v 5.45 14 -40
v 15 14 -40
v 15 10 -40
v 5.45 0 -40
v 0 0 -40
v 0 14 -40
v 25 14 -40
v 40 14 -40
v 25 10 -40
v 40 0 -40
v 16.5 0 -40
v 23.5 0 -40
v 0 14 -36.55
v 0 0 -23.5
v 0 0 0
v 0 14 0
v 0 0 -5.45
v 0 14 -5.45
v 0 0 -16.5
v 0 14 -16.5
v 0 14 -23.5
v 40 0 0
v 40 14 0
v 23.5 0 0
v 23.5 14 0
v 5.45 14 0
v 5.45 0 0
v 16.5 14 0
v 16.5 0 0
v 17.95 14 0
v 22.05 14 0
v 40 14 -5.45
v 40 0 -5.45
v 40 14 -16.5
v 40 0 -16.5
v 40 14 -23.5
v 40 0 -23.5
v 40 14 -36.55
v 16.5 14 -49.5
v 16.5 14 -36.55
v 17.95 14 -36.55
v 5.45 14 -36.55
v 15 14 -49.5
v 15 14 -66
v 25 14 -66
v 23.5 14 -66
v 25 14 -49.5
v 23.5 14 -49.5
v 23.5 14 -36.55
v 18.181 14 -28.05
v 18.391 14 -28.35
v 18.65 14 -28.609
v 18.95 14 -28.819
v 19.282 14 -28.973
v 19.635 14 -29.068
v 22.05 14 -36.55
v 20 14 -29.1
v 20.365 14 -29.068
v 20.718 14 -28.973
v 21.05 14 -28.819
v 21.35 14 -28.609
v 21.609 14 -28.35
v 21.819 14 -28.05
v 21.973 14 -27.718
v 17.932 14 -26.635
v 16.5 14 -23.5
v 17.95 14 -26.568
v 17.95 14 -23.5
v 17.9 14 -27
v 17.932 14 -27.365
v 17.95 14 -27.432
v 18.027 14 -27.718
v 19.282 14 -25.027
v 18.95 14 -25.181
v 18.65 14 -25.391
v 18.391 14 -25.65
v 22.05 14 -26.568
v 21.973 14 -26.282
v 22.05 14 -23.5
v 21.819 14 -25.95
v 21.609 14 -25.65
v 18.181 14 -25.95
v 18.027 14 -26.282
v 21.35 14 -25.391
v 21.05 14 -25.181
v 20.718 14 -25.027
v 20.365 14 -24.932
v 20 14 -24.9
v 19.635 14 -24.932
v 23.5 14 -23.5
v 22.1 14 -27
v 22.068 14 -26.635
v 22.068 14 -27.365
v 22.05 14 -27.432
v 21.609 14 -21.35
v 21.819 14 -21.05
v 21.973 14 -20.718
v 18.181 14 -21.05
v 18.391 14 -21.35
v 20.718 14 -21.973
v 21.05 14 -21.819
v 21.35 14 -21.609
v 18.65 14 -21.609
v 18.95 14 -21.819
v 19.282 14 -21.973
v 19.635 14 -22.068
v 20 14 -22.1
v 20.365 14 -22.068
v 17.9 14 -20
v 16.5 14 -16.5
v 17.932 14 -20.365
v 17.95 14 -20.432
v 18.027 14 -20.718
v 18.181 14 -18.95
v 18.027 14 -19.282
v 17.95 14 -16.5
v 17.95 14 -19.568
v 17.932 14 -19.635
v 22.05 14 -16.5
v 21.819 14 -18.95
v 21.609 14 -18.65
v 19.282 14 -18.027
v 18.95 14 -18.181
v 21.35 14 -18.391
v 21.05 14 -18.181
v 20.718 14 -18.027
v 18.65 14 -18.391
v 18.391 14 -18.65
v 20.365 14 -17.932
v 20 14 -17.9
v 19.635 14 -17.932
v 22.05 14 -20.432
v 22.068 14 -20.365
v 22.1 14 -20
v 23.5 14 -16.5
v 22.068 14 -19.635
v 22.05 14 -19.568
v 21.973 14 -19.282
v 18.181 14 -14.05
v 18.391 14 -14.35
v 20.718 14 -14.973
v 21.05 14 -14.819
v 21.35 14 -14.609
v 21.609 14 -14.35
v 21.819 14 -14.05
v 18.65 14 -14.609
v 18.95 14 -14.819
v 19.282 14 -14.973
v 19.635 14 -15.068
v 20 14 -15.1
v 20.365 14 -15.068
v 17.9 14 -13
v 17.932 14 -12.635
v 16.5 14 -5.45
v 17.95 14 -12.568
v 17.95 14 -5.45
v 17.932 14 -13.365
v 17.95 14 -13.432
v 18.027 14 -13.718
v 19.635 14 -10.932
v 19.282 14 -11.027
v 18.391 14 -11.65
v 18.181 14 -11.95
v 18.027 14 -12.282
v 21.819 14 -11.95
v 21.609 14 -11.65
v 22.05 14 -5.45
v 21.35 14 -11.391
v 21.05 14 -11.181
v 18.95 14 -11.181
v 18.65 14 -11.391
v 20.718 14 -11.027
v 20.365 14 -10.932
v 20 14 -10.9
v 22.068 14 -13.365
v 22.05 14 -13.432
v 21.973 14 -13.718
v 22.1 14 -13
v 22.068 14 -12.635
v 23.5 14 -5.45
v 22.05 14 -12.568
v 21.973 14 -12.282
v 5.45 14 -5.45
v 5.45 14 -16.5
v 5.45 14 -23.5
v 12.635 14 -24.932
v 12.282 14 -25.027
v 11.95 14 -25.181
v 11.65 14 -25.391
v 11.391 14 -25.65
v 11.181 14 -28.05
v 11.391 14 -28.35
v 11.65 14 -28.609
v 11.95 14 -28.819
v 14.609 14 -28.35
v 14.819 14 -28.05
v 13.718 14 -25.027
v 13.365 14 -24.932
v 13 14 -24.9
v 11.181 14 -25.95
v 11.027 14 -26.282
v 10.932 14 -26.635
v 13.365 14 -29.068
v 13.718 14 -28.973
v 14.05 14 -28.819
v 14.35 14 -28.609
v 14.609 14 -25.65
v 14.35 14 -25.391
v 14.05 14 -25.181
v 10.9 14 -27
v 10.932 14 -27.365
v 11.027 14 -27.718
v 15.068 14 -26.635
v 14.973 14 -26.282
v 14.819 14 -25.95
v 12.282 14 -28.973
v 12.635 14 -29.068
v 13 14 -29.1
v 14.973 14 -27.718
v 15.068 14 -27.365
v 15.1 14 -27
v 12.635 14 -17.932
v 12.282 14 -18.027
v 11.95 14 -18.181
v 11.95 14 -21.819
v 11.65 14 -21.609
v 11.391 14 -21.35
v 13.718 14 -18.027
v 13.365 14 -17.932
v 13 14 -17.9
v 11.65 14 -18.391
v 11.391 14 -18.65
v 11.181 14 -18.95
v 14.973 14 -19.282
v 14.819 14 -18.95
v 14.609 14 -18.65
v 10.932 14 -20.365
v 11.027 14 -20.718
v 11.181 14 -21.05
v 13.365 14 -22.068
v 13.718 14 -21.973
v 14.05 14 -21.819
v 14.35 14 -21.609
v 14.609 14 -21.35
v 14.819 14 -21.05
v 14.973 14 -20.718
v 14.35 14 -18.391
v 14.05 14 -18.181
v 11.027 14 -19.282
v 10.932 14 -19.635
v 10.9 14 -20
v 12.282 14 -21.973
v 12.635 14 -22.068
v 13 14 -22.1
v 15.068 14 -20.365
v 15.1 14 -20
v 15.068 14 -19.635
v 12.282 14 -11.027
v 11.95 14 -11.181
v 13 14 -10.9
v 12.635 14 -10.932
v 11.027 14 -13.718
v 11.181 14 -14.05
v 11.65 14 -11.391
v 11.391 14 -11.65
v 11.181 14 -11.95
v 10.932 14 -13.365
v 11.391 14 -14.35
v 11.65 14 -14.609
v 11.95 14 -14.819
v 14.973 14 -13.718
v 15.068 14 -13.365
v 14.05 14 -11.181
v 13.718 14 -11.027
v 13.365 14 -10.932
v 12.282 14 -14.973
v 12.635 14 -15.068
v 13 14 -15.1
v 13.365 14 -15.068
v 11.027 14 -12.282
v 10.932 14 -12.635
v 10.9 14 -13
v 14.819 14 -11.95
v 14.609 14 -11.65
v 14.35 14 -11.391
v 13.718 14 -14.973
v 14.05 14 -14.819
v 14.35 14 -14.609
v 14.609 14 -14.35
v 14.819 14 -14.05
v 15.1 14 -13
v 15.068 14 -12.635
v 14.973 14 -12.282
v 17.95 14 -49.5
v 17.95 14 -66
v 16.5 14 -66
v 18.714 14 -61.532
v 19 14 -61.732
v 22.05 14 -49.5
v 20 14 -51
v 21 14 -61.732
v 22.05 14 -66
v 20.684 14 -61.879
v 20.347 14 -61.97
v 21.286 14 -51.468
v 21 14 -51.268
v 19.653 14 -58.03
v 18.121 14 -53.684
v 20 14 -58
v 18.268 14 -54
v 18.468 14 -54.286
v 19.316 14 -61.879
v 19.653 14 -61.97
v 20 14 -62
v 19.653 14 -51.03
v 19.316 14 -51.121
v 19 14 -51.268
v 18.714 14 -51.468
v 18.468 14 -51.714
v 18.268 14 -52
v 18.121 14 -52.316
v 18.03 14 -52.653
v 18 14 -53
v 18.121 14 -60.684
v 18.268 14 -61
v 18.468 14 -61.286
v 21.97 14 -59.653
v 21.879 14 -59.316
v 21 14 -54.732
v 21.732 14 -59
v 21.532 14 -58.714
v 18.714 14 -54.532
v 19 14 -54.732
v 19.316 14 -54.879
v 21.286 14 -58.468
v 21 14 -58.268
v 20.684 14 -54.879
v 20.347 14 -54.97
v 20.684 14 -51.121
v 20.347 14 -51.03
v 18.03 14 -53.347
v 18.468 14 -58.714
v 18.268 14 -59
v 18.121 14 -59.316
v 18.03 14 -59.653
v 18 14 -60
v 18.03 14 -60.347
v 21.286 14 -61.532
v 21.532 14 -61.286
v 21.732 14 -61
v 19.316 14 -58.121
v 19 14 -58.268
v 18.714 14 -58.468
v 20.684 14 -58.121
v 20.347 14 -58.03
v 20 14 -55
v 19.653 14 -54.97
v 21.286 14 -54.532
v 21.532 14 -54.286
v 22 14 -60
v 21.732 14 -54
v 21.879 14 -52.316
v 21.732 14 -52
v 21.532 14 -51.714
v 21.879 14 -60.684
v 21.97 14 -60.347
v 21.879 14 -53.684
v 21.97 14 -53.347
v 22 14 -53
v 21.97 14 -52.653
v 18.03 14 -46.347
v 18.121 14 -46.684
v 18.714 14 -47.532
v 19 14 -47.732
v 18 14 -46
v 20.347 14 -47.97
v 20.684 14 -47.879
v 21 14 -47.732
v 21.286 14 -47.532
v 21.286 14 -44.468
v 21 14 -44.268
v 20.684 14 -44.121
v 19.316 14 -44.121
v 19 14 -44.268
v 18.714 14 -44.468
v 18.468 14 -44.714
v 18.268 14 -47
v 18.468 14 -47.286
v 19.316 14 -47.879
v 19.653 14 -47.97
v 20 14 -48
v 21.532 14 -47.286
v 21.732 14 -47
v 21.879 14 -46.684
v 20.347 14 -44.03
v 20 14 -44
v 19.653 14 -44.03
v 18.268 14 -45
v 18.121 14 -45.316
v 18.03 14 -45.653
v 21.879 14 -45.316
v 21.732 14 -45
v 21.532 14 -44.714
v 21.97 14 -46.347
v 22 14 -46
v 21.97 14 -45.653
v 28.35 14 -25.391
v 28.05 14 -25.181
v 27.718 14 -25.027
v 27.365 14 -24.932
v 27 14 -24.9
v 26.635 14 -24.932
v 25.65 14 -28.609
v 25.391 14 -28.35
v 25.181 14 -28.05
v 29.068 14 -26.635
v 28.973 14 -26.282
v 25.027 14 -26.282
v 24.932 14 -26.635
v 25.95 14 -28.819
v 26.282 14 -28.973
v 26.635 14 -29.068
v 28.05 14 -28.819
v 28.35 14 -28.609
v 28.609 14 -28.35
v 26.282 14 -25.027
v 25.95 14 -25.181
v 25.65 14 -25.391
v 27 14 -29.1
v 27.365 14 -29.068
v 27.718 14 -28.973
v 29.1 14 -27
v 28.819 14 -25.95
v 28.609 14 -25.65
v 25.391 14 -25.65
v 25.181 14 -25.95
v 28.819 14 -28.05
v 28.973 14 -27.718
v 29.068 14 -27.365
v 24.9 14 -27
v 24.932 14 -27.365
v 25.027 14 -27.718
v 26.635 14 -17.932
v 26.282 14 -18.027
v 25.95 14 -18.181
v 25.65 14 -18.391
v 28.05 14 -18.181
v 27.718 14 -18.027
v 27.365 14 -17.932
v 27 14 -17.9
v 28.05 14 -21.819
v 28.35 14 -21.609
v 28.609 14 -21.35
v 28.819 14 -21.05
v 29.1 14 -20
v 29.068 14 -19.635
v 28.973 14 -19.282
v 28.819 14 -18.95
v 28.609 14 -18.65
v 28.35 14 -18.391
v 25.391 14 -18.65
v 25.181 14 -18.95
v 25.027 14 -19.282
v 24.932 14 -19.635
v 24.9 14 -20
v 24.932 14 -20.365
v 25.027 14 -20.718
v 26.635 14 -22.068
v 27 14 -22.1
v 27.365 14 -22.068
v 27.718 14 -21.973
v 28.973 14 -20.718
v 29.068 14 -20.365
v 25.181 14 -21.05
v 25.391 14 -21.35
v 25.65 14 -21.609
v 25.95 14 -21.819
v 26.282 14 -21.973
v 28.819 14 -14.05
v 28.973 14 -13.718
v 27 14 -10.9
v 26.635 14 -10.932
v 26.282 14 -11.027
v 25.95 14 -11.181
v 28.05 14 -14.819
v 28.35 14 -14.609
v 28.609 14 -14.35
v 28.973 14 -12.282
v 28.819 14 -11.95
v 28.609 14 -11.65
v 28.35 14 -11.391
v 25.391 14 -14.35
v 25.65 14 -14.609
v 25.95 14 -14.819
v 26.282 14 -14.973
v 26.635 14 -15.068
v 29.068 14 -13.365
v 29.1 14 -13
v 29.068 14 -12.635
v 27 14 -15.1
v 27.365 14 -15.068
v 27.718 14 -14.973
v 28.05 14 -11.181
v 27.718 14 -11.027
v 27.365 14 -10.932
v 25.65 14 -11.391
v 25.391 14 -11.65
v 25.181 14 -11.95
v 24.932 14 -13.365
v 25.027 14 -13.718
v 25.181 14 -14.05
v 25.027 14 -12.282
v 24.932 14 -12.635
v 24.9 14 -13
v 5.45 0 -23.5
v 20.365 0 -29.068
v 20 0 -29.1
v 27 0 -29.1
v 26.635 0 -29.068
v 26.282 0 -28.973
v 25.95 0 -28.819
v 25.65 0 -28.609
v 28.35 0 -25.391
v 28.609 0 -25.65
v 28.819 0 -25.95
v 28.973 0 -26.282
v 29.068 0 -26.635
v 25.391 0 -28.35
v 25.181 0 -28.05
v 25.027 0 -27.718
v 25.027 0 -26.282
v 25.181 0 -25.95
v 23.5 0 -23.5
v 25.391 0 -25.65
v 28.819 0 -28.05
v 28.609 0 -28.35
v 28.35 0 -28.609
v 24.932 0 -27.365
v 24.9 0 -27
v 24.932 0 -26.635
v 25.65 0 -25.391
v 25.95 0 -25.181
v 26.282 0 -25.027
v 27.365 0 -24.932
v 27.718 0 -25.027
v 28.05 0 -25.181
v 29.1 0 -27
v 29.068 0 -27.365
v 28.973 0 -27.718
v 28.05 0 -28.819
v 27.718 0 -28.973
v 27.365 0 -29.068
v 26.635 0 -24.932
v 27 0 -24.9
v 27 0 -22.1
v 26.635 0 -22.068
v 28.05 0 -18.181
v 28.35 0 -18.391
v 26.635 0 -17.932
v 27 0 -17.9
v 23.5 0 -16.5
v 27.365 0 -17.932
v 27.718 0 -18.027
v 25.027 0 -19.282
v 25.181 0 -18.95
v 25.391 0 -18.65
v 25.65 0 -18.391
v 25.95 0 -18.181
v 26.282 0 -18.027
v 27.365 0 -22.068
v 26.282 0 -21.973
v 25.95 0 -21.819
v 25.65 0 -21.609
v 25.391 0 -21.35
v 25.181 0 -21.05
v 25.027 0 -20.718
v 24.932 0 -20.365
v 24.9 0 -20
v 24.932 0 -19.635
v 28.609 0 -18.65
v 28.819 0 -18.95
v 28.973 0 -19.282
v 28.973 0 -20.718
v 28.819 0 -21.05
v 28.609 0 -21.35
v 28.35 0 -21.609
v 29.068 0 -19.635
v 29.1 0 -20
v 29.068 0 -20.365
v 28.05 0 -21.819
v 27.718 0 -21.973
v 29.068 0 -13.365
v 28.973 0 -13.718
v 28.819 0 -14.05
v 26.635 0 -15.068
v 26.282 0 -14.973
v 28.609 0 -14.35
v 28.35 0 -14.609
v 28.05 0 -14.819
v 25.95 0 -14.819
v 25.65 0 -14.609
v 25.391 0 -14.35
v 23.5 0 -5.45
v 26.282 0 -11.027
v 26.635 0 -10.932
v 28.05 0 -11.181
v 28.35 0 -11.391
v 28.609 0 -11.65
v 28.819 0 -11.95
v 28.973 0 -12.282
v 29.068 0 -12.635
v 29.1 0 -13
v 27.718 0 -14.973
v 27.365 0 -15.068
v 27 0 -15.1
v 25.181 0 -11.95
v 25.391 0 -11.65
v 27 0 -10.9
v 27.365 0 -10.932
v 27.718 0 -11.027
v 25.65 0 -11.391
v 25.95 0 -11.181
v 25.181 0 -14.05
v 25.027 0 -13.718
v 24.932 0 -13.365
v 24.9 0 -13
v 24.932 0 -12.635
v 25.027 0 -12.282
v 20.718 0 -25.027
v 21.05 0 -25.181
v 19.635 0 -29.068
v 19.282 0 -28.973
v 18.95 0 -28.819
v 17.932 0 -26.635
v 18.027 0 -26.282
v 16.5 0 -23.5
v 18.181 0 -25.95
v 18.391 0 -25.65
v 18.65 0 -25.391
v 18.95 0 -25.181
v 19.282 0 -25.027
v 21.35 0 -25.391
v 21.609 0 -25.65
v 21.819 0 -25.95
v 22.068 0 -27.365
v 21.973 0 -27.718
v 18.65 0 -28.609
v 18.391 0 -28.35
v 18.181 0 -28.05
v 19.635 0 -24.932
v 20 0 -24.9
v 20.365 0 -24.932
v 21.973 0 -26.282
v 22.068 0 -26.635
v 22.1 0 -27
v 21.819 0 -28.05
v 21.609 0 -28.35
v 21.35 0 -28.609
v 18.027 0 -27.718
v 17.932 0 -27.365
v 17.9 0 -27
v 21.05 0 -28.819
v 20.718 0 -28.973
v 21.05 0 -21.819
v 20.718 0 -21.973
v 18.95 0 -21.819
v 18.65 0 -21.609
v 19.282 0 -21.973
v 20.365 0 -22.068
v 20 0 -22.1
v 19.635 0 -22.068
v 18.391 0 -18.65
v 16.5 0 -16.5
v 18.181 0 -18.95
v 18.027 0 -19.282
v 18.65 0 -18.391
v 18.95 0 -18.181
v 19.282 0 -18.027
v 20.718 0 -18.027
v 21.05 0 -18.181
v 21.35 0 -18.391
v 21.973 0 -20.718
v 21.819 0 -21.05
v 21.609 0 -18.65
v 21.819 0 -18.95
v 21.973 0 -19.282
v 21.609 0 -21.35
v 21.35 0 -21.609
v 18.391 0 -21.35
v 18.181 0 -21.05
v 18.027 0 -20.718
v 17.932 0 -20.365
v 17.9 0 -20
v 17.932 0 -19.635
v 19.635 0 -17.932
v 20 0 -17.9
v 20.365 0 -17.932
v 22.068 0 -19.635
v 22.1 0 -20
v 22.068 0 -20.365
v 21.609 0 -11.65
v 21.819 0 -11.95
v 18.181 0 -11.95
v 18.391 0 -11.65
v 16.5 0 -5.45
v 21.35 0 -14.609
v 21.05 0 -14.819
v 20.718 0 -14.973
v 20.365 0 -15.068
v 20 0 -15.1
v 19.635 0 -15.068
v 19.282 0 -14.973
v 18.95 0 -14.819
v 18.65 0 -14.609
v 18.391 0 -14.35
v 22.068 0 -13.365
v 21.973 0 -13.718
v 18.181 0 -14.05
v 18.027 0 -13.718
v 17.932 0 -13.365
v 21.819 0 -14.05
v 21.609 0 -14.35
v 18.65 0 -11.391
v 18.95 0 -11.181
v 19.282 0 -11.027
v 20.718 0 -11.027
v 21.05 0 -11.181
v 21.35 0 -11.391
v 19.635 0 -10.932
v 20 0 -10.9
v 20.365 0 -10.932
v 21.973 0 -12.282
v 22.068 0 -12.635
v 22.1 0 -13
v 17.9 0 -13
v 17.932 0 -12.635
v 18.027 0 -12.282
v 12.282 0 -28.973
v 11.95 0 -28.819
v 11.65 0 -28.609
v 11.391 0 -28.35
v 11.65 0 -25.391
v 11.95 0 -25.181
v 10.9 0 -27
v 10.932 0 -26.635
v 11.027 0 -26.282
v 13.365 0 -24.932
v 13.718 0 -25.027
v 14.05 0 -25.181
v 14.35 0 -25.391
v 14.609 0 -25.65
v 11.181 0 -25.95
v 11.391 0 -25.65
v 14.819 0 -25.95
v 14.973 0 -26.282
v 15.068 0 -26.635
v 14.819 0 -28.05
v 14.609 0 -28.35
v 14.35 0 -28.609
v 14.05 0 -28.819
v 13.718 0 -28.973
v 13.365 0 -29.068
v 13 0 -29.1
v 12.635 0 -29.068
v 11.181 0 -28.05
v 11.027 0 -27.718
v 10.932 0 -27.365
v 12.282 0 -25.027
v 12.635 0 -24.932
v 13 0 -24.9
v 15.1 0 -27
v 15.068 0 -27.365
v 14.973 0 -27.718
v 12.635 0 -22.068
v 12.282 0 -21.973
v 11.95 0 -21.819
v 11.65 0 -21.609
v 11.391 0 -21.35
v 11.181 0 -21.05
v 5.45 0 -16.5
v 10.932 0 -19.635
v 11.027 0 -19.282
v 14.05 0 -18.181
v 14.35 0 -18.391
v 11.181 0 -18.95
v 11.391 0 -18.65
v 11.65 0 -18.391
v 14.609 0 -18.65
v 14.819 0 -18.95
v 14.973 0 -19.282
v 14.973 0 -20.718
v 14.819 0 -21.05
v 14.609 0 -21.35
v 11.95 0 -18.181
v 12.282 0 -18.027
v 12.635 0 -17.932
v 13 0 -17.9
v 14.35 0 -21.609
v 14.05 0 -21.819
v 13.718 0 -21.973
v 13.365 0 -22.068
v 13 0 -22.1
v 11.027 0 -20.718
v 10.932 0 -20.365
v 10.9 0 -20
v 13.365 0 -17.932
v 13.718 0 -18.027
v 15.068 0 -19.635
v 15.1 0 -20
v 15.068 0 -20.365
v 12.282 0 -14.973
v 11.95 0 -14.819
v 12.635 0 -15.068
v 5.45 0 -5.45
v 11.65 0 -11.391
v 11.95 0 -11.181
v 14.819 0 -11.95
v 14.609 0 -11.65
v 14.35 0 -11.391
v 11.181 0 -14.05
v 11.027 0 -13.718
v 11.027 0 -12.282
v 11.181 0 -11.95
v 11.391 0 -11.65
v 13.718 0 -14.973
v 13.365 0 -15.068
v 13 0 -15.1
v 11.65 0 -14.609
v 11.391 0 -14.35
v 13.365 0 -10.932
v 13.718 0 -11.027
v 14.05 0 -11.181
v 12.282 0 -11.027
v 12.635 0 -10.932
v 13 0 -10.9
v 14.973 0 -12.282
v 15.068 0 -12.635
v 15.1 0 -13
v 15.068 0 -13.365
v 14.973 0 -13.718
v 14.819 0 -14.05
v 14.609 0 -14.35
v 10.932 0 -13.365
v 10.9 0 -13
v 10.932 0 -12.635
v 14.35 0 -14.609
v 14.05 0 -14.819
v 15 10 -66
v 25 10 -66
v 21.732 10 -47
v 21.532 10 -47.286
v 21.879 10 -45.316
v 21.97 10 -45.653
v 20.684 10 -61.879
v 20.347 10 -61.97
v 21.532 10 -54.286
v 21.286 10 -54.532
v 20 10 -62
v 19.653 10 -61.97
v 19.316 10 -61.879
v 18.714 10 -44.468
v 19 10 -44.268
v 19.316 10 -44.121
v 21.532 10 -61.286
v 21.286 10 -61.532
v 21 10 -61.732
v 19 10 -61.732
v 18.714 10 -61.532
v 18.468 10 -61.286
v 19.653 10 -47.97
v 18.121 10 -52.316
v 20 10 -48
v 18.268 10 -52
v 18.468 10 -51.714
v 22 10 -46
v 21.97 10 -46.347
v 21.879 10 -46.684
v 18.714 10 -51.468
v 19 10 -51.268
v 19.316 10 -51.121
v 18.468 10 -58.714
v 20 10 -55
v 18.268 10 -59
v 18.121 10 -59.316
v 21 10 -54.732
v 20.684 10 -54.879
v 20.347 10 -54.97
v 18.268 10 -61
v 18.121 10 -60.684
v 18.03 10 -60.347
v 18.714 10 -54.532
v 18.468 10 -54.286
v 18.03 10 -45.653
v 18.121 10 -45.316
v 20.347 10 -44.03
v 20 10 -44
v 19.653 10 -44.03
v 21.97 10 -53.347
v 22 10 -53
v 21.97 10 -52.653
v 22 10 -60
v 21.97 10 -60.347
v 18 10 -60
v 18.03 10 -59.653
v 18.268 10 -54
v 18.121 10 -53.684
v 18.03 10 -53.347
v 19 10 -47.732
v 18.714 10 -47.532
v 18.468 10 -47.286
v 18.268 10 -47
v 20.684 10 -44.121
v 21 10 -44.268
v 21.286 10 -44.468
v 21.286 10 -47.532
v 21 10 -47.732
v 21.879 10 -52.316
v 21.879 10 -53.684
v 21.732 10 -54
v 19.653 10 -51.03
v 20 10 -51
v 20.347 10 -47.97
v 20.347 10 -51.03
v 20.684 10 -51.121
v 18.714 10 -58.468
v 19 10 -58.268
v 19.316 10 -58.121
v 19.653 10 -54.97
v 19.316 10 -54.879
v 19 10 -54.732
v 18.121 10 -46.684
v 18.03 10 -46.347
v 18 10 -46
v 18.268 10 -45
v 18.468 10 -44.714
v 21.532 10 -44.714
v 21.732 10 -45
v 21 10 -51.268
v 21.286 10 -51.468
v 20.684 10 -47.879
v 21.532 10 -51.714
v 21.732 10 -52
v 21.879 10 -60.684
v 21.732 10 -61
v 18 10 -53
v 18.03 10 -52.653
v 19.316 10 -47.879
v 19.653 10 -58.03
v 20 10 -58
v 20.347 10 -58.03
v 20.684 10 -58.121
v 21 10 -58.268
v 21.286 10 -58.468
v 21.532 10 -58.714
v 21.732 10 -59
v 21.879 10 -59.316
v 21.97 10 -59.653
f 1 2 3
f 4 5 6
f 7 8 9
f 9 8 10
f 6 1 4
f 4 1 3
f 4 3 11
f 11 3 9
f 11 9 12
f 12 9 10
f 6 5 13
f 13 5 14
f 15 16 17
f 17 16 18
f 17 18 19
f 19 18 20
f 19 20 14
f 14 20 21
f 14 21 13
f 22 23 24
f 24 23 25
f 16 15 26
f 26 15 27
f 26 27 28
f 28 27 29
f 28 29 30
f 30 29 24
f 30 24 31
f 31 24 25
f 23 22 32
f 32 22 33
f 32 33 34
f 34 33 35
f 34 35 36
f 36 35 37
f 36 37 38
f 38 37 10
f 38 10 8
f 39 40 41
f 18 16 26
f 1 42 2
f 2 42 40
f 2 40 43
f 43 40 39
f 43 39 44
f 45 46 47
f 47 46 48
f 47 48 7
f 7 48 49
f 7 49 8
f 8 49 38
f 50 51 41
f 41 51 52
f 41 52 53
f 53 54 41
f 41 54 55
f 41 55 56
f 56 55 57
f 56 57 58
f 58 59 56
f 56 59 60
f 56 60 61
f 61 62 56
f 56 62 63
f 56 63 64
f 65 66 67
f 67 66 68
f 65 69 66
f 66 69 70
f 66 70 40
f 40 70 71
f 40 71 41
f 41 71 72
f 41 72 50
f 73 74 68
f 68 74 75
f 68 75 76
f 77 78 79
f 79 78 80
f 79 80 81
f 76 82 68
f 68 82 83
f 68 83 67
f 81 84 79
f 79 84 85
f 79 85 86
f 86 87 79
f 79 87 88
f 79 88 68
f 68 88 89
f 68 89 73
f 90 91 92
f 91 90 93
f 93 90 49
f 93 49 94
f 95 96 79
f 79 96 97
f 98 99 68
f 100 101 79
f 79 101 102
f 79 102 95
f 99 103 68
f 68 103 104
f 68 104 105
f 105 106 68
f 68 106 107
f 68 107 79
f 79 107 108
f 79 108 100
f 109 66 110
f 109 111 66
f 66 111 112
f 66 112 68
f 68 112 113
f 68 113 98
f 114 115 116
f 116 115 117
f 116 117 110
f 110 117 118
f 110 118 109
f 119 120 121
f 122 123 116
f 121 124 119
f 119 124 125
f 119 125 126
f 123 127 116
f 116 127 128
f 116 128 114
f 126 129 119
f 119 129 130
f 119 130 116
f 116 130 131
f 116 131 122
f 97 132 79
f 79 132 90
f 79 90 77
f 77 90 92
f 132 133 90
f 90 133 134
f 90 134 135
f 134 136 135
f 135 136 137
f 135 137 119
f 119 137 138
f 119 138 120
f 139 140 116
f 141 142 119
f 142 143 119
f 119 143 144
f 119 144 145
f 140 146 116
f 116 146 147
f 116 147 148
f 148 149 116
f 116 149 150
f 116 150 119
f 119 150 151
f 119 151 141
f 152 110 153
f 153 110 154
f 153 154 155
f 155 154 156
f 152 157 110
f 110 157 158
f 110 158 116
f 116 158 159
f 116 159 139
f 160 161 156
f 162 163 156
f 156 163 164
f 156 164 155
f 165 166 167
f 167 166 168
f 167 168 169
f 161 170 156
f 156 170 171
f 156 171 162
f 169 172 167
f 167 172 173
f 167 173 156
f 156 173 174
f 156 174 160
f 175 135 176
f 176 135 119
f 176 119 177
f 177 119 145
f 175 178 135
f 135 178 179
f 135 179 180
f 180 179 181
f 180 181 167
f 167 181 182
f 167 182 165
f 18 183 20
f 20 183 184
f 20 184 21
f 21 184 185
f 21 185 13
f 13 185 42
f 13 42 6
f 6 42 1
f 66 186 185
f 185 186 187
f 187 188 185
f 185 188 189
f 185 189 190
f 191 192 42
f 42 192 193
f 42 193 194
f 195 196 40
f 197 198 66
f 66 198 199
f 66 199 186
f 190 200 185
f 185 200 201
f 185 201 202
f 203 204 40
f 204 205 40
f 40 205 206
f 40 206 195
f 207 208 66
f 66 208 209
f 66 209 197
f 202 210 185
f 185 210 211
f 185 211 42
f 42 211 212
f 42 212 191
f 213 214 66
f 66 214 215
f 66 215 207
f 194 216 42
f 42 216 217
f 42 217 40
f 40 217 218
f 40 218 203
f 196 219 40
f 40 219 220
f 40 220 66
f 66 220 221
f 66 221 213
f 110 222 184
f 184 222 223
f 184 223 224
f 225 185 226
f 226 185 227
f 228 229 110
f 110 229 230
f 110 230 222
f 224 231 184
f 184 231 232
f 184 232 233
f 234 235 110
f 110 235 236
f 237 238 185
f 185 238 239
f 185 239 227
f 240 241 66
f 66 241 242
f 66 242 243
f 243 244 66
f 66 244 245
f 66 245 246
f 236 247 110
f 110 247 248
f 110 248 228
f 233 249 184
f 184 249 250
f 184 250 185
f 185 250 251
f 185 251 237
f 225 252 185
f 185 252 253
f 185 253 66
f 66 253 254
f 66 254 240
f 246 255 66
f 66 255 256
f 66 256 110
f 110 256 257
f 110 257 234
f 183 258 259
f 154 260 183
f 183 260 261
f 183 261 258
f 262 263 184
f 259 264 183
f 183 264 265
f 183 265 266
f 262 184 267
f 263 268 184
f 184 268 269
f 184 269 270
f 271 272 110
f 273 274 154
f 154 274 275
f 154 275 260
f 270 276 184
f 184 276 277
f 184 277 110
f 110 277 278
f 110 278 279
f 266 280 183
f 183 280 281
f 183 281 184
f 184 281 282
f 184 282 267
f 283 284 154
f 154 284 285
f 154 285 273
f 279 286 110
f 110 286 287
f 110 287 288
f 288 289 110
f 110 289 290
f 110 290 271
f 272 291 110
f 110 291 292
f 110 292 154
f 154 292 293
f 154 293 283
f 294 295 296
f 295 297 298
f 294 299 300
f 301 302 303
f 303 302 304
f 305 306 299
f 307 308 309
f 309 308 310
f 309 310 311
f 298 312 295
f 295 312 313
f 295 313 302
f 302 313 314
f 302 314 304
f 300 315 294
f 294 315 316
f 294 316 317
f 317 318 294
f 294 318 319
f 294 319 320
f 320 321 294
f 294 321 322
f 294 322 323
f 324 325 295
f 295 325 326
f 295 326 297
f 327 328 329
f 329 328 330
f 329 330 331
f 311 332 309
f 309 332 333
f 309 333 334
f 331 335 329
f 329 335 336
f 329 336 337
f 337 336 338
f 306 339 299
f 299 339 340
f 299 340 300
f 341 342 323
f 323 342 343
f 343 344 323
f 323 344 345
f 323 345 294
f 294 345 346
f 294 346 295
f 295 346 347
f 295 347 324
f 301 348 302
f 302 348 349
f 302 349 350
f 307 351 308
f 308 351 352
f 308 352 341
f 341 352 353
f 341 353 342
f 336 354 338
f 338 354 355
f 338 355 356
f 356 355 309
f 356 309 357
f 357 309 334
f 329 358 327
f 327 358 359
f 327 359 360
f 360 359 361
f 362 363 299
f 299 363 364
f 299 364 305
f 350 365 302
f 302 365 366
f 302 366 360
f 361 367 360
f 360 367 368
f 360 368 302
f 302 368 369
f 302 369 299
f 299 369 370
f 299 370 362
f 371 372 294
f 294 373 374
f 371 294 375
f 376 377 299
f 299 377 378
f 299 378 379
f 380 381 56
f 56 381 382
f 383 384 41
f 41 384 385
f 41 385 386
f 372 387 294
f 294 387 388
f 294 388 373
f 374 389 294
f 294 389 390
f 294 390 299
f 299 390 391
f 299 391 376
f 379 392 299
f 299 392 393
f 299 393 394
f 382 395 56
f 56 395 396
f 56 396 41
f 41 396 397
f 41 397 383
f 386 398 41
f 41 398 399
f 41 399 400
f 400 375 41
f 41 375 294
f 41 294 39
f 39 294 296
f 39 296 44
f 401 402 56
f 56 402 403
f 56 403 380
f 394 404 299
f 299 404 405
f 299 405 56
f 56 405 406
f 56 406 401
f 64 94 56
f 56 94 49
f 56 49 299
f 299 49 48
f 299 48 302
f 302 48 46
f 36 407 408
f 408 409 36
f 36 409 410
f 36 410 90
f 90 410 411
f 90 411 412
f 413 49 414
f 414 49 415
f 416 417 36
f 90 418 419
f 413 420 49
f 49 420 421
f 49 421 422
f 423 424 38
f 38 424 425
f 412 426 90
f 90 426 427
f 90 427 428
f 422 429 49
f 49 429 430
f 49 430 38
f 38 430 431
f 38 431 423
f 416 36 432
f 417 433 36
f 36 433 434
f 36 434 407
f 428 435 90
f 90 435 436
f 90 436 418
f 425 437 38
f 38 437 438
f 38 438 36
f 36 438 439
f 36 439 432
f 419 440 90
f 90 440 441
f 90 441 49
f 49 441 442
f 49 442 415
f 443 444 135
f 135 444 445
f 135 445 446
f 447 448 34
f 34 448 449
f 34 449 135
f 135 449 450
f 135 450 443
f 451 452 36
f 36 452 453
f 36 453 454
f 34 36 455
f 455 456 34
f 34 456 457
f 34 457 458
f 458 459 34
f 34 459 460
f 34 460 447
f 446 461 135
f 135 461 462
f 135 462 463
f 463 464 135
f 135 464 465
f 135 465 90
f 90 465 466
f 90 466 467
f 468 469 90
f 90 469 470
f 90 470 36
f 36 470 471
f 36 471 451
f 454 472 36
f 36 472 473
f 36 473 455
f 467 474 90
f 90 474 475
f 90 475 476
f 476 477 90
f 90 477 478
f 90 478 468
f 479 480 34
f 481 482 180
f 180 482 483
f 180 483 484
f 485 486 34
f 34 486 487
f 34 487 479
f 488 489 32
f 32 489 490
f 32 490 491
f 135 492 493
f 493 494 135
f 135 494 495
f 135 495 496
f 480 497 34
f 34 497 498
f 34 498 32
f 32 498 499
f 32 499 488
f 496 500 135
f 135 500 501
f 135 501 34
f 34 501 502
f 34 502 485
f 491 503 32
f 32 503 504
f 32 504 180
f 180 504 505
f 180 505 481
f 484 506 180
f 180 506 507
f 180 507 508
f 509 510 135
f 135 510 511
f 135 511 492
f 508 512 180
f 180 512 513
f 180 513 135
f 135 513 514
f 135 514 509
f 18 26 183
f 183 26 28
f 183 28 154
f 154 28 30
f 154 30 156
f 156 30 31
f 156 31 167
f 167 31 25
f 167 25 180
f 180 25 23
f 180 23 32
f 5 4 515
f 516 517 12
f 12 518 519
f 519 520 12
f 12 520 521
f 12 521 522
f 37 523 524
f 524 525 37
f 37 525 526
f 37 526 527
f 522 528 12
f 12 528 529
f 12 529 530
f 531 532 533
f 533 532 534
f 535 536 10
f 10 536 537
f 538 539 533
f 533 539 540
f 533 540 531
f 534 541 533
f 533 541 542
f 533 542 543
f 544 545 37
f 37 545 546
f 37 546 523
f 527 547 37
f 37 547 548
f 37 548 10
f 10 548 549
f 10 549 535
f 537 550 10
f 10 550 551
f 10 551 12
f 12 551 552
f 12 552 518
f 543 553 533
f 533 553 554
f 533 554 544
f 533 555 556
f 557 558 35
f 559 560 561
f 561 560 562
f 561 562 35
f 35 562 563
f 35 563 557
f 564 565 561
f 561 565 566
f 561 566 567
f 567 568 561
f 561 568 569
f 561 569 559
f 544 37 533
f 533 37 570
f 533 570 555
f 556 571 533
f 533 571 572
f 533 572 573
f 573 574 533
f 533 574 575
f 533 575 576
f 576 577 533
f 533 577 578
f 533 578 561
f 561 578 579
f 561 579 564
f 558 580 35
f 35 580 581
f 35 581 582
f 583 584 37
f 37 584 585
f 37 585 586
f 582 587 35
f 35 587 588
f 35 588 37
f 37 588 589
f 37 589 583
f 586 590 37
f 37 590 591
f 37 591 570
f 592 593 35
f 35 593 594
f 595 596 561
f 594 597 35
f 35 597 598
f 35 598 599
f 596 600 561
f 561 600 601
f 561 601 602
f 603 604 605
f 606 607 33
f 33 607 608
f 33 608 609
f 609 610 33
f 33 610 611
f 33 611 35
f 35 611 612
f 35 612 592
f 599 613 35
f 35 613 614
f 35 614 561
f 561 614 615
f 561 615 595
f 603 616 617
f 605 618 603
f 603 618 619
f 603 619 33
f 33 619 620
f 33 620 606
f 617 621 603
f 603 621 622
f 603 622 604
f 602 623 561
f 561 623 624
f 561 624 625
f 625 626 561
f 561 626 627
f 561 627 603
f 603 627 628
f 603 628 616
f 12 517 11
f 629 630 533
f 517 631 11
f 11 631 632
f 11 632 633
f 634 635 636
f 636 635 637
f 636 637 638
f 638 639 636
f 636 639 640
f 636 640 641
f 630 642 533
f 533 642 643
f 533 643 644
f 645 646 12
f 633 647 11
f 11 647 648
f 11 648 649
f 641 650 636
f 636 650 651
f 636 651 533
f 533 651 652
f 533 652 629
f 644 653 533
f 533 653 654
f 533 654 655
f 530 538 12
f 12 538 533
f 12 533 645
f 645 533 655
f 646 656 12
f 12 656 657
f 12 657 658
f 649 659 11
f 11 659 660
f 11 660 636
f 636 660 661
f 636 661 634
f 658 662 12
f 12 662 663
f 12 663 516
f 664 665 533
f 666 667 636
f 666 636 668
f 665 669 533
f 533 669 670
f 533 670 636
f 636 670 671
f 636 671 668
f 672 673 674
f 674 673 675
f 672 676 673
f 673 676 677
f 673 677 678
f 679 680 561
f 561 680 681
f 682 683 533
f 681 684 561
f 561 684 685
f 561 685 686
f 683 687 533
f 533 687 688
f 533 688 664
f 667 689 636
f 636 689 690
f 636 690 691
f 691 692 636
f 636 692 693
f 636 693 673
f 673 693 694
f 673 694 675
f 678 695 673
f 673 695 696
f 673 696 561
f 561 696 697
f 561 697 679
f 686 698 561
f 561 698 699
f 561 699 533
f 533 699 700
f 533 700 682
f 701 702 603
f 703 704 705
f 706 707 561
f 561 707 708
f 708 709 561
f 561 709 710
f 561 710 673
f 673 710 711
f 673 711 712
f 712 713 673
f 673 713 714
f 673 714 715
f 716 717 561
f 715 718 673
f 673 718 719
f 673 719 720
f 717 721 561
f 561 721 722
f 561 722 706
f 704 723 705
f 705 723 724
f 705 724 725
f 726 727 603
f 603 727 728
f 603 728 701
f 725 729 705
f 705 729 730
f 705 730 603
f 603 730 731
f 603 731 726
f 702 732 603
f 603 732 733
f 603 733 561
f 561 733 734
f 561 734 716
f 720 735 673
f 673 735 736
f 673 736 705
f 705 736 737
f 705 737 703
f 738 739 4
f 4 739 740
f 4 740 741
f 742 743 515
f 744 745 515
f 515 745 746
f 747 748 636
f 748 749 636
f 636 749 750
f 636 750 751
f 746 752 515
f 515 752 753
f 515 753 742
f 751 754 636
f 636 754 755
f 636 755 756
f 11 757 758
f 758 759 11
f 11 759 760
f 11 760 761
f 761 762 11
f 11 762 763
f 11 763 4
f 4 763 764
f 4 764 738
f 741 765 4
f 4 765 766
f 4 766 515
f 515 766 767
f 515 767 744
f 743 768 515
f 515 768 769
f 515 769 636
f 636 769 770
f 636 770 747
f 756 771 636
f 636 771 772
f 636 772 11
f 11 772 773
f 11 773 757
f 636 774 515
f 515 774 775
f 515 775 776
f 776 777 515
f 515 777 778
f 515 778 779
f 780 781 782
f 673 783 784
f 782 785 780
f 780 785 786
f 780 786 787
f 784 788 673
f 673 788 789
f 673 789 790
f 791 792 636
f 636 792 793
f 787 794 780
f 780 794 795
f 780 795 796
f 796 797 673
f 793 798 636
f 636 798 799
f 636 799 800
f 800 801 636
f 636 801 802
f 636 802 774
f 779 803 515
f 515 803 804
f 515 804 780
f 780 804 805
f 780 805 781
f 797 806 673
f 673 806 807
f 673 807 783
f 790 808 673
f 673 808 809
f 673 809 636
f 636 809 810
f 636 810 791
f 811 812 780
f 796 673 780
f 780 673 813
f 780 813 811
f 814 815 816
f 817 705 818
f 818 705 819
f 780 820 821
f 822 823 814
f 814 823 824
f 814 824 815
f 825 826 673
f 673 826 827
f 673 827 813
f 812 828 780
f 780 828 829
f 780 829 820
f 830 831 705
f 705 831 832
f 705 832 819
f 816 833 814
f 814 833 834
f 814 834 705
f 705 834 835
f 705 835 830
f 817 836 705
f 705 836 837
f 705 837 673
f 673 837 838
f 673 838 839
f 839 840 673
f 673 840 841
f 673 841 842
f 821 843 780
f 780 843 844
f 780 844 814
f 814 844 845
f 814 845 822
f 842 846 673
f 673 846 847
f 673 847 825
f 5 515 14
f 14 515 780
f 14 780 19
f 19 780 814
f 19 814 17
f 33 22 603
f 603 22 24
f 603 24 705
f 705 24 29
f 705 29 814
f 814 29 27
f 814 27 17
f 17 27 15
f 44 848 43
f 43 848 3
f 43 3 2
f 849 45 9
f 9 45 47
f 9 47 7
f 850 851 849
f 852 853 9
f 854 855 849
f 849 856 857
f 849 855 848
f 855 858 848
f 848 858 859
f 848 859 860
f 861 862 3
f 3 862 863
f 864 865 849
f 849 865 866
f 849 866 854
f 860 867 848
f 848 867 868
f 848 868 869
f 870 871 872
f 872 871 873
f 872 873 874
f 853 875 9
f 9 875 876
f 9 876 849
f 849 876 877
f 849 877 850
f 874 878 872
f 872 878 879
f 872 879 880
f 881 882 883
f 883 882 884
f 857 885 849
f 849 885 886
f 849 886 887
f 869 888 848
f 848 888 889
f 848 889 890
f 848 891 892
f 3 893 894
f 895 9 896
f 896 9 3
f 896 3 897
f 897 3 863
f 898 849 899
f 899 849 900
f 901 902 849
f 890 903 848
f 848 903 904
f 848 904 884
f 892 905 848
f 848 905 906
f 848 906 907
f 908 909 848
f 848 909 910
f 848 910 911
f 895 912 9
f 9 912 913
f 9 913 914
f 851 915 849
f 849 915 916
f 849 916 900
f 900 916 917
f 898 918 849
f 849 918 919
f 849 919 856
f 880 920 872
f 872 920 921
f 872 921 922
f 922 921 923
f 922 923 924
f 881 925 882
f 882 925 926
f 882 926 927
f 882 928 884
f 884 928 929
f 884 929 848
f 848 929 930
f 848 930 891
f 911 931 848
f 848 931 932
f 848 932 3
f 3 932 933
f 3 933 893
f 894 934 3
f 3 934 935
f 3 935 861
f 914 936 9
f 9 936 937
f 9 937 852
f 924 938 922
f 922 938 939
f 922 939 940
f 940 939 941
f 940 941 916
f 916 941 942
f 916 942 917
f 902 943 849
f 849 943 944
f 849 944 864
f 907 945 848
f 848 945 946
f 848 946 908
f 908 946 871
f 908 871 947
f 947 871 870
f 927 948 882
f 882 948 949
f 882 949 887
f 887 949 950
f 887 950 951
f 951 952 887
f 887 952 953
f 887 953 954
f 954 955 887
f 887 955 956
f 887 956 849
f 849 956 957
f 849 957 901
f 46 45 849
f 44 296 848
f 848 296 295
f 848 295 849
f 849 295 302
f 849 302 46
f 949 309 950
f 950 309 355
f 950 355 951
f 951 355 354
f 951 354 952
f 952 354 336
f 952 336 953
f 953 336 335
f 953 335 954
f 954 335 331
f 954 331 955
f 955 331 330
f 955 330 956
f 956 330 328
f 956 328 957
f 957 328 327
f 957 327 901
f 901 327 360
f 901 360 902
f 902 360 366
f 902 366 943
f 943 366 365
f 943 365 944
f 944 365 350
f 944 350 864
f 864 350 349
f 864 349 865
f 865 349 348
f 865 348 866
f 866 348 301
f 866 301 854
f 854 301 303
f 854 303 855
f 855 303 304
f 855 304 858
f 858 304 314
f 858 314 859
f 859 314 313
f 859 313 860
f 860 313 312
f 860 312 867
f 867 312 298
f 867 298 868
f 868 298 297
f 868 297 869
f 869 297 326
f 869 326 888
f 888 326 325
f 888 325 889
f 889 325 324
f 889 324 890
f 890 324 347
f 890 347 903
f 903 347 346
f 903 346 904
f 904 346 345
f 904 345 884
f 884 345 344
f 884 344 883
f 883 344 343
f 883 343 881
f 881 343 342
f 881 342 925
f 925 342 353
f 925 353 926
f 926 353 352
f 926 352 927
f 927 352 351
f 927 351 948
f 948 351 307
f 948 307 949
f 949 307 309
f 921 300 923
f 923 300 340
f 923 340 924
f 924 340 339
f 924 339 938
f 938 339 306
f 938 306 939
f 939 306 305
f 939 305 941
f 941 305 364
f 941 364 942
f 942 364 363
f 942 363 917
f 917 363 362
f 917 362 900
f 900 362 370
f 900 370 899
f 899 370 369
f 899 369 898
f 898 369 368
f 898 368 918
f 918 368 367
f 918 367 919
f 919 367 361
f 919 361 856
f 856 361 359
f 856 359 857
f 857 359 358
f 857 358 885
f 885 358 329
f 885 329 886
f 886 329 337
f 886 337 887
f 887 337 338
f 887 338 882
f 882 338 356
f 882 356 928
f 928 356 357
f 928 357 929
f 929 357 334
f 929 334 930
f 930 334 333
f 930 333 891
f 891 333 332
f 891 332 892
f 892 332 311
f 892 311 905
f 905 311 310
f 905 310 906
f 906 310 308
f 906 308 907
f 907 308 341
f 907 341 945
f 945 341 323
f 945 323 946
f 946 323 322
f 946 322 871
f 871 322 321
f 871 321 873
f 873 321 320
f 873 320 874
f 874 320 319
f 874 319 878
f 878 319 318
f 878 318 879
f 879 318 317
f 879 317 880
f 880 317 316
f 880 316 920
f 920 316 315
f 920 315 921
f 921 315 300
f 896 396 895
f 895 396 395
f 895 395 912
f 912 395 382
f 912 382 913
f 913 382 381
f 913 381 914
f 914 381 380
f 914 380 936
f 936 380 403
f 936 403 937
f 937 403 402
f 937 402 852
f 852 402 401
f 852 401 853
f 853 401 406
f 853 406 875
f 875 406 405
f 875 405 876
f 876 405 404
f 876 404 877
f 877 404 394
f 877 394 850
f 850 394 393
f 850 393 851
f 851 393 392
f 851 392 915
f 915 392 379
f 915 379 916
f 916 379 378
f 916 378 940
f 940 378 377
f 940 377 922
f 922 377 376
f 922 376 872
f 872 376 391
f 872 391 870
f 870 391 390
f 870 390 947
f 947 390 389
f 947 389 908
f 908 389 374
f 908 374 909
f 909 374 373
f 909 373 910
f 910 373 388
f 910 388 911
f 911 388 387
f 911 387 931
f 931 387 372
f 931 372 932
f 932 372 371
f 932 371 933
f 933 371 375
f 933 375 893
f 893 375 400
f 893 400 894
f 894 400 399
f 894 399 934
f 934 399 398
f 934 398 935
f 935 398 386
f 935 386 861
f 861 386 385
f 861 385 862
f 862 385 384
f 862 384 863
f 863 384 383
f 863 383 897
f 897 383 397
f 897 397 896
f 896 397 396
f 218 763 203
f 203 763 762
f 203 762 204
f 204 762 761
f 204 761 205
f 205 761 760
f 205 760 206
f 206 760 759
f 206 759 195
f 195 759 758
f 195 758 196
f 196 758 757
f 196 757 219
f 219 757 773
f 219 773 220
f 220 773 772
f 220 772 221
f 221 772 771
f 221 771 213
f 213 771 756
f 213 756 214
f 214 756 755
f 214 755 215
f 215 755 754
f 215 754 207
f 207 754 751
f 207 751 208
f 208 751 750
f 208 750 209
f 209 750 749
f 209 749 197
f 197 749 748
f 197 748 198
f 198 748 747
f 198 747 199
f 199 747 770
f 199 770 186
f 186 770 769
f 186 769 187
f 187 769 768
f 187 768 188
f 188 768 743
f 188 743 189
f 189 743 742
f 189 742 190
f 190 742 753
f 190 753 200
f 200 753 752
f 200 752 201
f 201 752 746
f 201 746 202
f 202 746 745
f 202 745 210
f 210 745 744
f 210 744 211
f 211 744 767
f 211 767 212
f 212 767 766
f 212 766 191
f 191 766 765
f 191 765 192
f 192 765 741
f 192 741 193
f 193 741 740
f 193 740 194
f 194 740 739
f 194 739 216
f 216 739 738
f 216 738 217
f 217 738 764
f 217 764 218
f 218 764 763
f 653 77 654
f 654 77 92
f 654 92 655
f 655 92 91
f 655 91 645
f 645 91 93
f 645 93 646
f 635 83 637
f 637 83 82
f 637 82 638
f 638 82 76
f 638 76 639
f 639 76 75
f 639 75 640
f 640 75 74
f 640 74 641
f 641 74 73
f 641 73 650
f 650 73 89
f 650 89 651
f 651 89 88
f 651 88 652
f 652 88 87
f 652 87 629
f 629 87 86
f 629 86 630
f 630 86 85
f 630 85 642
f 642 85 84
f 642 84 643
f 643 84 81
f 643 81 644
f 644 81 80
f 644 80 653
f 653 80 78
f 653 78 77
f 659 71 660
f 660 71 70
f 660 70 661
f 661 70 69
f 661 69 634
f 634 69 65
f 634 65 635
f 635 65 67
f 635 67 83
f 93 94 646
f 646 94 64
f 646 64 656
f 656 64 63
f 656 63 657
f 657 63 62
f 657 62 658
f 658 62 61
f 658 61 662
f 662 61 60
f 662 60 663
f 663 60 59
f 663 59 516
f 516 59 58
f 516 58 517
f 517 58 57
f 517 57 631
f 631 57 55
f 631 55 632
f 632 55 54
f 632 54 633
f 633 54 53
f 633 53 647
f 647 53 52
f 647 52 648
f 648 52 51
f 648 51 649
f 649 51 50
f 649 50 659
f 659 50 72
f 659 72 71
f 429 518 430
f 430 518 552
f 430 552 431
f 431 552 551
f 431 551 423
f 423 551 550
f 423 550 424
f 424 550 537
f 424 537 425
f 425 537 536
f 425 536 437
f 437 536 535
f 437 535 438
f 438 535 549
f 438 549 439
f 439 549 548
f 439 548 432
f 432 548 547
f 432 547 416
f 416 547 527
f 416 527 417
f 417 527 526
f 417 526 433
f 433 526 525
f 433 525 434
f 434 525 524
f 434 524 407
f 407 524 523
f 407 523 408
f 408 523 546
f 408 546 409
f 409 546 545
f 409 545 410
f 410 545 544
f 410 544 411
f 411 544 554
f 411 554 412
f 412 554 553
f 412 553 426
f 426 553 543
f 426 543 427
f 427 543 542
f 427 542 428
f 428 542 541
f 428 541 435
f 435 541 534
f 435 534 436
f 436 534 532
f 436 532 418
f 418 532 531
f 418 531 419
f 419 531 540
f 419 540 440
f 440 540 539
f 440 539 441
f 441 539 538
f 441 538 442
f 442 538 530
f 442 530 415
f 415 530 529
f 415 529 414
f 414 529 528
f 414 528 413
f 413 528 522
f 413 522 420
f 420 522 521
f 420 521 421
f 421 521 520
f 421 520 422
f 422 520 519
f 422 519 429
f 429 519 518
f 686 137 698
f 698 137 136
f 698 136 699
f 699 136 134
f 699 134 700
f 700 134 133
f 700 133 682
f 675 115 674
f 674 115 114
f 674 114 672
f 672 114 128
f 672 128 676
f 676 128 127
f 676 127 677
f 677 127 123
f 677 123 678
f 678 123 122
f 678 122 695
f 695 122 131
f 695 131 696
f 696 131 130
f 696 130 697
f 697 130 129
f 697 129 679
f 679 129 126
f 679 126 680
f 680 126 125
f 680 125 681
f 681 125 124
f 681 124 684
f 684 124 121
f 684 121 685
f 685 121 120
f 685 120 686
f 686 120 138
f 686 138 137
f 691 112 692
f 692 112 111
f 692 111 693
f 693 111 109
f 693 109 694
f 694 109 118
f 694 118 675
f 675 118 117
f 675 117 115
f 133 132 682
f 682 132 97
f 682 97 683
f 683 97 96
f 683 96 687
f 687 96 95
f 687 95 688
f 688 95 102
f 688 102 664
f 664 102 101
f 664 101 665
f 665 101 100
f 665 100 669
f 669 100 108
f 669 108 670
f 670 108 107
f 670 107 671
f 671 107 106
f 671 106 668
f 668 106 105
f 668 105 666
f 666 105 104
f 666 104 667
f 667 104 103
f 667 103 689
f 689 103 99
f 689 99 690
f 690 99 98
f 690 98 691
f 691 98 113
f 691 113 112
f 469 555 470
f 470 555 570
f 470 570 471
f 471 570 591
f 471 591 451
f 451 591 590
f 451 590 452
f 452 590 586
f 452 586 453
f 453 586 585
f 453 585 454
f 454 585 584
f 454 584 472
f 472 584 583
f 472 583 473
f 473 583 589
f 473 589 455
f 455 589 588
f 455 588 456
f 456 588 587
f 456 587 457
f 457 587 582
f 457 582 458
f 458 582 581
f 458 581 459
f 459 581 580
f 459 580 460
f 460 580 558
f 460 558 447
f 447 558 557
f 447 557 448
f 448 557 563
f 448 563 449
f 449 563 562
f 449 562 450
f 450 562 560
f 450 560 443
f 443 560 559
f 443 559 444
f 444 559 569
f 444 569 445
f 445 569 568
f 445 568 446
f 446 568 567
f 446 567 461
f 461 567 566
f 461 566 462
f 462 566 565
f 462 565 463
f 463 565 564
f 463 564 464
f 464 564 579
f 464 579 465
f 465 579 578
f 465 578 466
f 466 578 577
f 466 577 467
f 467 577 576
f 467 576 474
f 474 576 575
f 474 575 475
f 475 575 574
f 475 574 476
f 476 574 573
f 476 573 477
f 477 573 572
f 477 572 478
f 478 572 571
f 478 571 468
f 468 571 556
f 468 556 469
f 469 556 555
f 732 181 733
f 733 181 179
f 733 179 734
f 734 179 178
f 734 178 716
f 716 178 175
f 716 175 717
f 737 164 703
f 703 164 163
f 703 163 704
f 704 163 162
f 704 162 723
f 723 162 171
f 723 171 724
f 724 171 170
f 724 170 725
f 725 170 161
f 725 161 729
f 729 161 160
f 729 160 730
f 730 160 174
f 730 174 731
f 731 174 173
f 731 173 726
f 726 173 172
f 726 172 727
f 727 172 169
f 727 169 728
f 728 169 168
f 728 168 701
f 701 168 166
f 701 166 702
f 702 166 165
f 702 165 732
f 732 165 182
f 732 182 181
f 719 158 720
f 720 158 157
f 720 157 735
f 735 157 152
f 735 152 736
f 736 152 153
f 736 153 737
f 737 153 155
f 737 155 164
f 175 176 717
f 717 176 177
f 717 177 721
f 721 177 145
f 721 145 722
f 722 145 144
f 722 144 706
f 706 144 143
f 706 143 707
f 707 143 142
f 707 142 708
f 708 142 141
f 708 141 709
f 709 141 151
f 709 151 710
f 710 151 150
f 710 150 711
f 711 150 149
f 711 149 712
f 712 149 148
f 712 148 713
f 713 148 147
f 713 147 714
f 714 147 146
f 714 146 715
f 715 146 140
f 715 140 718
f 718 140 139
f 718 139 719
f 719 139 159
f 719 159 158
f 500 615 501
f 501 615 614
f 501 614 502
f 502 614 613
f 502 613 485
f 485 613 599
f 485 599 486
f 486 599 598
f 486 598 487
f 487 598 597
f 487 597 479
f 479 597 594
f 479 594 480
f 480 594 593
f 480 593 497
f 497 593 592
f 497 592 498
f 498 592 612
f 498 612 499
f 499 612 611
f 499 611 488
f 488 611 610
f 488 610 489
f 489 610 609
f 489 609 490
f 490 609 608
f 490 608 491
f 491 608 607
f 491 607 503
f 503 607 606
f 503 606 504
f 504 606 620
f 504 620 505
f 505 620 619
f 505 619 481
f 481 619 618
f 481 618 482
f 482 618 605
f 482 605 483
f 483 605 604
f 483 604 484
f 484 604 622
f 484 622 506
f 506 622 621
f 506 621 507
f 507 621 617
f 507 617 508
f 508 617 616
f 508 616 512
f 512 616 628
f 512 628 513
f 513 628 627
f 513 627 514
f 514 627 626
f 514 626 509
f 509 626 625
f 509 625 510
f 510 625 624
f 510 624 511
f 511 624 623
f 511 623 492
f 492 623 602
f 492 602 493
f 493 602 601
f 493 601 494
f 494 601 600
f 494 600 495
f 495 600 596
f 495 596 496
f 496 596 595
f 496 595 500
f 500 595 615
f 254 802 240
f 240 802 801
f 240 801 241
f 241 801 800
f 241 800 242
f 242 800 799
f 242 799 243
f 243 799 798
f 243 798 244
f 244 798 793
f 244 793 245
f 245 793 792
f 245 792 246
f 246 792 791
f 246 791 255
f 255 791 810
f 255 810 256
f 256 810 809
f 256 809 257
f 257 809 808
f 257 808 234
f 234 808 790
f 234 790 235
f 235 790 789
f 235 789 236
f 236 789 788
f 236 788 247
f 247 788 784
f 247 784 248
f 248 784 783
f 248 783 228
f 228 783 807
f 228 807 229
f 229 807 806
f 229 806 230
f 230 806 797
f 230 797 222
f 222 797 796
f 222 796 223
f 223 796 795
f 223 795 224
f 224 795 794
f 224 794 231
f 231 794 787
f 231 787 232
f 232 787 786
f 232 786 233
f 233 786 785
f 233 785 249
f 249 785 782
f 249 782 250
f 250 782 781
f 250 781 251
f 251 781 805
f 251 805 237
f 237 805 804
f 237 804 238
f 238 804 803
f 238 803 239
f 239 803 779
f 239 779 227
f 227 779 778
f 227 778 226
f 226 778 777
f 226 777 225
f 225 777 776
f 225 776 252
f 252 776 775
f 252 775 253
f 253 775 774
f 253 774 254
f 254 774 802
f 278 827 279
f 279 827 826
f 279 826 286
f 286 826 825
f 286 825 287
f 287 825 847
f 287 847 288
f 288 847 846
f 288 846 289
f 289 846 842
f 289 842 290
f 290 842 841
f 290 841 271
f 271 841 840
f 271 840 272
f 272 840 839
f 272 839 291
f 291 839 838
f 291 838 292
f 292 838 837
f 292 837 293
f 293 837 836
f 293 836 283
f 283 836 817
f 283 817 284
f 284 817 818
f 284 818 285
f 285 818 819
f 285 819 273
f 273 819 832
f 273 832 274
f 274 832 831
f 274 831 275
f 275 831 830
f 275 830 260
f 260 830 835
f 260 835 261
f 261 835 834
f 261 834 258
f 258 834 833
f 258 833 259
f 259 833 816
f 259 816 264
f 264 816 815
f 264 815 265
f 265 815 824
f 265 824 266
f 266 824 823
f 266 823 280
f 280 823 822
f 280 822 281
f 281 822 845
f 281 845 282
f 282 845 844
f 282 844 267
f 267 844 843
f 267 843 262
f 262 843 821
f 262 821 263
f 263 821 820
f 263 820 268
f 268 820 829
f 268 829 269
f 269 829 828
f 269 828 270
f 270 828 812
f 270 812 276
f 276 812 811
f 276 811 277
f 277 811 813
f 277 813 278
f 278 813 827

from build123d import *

# Parameters (mm, degrees)
SKETCH1_W           = 40
SKETCH1_H           = 40
BOSS_EXTRUDE1_DEPTH = 14
SKETCH4_W           = 10
SKETCH4_H           = 4
BOSS_EXTRUDE3_DEPTH = 26
SKETCH5_R           = 2
CUT_EXTRUDE2_DEPTH  = 26
SKETCH6_R           = 2.1
CUT_EXTRUDE3_DEPTH  = 15


with BuildPart() as part:
    # Sketch1 → Boss-Extrude1 (new body)
    with BuildSketch(Plane(origin=(0, 0, 0), x_dir=(1, 0, 0), z_dir=(0, 1, 0))):
        with Locations((20, 20)):
            Rectangle(SKETCH1_W, SKETCH1_H)
    extrude(amount=BOSS_EXTRUDE1_DEPTH)

    # Sketch4 → Boss-Extrude3 (add)
    with BuildSketch(Plane(origin=(0, 0, -40), x_dir=(-1, 0, 0), z_dir=(0, 0, -1))):
        with Locations((-20, 12)):
            Rectangle(SKETCH4_W, SKETCH4_H)
    extrude(amount=BOSS_EXTRUDE3_DEPTH)

    # Sketch5 → Cut-Extrude2 (cut)
    with BuildSketch(Plane(origin=(0, 14, 0), x_dir=(1, 0, 0), z_dir=(0, 1, 0))):
        with Locations((20, 60)):
            Circle(SKETCH5_R)
        with Locations((20, 53)):
            Circle(SKETCH5_R)
        with Locations((20, 46)):
            Circle(SKETCH5_R)
    extrude(amount=-CUT_EXTRUDE2_DEPTH, mode=Mode.SUBTRACT)

    # Sketch6 → Cut-Extrude3 (cut, through all)
    with BuildSketch(Plane.XZ):
        with Locations((13, -27)):
            Circle(SKETCH6_R)
        with Locations((20, -27)):
            Circle(SKETCH6_R)
        with Locations((27, -27)):
            Circle(SKETCH6_R)
        with Locations((20, -20)):
            Circle(SKETCH6_R)
        with Locations((27, -20)):
            Circle(SKETCH6_R)
        with Locations((20, -13)):
            Circle(SKETCH6_R)
        with Locations((27, -13)):
            Circle(SKETCH6_R)
        with Locations((13, -20)):
            Circle(SKETCH6_R)
        with Locations((13, -13)):
            Circle(SKETCH6_R)
    extrude(amount=-CUT_EXTRUDE3_DEPTH, mode=Mode.SUBTRACT)


solid = part.part
